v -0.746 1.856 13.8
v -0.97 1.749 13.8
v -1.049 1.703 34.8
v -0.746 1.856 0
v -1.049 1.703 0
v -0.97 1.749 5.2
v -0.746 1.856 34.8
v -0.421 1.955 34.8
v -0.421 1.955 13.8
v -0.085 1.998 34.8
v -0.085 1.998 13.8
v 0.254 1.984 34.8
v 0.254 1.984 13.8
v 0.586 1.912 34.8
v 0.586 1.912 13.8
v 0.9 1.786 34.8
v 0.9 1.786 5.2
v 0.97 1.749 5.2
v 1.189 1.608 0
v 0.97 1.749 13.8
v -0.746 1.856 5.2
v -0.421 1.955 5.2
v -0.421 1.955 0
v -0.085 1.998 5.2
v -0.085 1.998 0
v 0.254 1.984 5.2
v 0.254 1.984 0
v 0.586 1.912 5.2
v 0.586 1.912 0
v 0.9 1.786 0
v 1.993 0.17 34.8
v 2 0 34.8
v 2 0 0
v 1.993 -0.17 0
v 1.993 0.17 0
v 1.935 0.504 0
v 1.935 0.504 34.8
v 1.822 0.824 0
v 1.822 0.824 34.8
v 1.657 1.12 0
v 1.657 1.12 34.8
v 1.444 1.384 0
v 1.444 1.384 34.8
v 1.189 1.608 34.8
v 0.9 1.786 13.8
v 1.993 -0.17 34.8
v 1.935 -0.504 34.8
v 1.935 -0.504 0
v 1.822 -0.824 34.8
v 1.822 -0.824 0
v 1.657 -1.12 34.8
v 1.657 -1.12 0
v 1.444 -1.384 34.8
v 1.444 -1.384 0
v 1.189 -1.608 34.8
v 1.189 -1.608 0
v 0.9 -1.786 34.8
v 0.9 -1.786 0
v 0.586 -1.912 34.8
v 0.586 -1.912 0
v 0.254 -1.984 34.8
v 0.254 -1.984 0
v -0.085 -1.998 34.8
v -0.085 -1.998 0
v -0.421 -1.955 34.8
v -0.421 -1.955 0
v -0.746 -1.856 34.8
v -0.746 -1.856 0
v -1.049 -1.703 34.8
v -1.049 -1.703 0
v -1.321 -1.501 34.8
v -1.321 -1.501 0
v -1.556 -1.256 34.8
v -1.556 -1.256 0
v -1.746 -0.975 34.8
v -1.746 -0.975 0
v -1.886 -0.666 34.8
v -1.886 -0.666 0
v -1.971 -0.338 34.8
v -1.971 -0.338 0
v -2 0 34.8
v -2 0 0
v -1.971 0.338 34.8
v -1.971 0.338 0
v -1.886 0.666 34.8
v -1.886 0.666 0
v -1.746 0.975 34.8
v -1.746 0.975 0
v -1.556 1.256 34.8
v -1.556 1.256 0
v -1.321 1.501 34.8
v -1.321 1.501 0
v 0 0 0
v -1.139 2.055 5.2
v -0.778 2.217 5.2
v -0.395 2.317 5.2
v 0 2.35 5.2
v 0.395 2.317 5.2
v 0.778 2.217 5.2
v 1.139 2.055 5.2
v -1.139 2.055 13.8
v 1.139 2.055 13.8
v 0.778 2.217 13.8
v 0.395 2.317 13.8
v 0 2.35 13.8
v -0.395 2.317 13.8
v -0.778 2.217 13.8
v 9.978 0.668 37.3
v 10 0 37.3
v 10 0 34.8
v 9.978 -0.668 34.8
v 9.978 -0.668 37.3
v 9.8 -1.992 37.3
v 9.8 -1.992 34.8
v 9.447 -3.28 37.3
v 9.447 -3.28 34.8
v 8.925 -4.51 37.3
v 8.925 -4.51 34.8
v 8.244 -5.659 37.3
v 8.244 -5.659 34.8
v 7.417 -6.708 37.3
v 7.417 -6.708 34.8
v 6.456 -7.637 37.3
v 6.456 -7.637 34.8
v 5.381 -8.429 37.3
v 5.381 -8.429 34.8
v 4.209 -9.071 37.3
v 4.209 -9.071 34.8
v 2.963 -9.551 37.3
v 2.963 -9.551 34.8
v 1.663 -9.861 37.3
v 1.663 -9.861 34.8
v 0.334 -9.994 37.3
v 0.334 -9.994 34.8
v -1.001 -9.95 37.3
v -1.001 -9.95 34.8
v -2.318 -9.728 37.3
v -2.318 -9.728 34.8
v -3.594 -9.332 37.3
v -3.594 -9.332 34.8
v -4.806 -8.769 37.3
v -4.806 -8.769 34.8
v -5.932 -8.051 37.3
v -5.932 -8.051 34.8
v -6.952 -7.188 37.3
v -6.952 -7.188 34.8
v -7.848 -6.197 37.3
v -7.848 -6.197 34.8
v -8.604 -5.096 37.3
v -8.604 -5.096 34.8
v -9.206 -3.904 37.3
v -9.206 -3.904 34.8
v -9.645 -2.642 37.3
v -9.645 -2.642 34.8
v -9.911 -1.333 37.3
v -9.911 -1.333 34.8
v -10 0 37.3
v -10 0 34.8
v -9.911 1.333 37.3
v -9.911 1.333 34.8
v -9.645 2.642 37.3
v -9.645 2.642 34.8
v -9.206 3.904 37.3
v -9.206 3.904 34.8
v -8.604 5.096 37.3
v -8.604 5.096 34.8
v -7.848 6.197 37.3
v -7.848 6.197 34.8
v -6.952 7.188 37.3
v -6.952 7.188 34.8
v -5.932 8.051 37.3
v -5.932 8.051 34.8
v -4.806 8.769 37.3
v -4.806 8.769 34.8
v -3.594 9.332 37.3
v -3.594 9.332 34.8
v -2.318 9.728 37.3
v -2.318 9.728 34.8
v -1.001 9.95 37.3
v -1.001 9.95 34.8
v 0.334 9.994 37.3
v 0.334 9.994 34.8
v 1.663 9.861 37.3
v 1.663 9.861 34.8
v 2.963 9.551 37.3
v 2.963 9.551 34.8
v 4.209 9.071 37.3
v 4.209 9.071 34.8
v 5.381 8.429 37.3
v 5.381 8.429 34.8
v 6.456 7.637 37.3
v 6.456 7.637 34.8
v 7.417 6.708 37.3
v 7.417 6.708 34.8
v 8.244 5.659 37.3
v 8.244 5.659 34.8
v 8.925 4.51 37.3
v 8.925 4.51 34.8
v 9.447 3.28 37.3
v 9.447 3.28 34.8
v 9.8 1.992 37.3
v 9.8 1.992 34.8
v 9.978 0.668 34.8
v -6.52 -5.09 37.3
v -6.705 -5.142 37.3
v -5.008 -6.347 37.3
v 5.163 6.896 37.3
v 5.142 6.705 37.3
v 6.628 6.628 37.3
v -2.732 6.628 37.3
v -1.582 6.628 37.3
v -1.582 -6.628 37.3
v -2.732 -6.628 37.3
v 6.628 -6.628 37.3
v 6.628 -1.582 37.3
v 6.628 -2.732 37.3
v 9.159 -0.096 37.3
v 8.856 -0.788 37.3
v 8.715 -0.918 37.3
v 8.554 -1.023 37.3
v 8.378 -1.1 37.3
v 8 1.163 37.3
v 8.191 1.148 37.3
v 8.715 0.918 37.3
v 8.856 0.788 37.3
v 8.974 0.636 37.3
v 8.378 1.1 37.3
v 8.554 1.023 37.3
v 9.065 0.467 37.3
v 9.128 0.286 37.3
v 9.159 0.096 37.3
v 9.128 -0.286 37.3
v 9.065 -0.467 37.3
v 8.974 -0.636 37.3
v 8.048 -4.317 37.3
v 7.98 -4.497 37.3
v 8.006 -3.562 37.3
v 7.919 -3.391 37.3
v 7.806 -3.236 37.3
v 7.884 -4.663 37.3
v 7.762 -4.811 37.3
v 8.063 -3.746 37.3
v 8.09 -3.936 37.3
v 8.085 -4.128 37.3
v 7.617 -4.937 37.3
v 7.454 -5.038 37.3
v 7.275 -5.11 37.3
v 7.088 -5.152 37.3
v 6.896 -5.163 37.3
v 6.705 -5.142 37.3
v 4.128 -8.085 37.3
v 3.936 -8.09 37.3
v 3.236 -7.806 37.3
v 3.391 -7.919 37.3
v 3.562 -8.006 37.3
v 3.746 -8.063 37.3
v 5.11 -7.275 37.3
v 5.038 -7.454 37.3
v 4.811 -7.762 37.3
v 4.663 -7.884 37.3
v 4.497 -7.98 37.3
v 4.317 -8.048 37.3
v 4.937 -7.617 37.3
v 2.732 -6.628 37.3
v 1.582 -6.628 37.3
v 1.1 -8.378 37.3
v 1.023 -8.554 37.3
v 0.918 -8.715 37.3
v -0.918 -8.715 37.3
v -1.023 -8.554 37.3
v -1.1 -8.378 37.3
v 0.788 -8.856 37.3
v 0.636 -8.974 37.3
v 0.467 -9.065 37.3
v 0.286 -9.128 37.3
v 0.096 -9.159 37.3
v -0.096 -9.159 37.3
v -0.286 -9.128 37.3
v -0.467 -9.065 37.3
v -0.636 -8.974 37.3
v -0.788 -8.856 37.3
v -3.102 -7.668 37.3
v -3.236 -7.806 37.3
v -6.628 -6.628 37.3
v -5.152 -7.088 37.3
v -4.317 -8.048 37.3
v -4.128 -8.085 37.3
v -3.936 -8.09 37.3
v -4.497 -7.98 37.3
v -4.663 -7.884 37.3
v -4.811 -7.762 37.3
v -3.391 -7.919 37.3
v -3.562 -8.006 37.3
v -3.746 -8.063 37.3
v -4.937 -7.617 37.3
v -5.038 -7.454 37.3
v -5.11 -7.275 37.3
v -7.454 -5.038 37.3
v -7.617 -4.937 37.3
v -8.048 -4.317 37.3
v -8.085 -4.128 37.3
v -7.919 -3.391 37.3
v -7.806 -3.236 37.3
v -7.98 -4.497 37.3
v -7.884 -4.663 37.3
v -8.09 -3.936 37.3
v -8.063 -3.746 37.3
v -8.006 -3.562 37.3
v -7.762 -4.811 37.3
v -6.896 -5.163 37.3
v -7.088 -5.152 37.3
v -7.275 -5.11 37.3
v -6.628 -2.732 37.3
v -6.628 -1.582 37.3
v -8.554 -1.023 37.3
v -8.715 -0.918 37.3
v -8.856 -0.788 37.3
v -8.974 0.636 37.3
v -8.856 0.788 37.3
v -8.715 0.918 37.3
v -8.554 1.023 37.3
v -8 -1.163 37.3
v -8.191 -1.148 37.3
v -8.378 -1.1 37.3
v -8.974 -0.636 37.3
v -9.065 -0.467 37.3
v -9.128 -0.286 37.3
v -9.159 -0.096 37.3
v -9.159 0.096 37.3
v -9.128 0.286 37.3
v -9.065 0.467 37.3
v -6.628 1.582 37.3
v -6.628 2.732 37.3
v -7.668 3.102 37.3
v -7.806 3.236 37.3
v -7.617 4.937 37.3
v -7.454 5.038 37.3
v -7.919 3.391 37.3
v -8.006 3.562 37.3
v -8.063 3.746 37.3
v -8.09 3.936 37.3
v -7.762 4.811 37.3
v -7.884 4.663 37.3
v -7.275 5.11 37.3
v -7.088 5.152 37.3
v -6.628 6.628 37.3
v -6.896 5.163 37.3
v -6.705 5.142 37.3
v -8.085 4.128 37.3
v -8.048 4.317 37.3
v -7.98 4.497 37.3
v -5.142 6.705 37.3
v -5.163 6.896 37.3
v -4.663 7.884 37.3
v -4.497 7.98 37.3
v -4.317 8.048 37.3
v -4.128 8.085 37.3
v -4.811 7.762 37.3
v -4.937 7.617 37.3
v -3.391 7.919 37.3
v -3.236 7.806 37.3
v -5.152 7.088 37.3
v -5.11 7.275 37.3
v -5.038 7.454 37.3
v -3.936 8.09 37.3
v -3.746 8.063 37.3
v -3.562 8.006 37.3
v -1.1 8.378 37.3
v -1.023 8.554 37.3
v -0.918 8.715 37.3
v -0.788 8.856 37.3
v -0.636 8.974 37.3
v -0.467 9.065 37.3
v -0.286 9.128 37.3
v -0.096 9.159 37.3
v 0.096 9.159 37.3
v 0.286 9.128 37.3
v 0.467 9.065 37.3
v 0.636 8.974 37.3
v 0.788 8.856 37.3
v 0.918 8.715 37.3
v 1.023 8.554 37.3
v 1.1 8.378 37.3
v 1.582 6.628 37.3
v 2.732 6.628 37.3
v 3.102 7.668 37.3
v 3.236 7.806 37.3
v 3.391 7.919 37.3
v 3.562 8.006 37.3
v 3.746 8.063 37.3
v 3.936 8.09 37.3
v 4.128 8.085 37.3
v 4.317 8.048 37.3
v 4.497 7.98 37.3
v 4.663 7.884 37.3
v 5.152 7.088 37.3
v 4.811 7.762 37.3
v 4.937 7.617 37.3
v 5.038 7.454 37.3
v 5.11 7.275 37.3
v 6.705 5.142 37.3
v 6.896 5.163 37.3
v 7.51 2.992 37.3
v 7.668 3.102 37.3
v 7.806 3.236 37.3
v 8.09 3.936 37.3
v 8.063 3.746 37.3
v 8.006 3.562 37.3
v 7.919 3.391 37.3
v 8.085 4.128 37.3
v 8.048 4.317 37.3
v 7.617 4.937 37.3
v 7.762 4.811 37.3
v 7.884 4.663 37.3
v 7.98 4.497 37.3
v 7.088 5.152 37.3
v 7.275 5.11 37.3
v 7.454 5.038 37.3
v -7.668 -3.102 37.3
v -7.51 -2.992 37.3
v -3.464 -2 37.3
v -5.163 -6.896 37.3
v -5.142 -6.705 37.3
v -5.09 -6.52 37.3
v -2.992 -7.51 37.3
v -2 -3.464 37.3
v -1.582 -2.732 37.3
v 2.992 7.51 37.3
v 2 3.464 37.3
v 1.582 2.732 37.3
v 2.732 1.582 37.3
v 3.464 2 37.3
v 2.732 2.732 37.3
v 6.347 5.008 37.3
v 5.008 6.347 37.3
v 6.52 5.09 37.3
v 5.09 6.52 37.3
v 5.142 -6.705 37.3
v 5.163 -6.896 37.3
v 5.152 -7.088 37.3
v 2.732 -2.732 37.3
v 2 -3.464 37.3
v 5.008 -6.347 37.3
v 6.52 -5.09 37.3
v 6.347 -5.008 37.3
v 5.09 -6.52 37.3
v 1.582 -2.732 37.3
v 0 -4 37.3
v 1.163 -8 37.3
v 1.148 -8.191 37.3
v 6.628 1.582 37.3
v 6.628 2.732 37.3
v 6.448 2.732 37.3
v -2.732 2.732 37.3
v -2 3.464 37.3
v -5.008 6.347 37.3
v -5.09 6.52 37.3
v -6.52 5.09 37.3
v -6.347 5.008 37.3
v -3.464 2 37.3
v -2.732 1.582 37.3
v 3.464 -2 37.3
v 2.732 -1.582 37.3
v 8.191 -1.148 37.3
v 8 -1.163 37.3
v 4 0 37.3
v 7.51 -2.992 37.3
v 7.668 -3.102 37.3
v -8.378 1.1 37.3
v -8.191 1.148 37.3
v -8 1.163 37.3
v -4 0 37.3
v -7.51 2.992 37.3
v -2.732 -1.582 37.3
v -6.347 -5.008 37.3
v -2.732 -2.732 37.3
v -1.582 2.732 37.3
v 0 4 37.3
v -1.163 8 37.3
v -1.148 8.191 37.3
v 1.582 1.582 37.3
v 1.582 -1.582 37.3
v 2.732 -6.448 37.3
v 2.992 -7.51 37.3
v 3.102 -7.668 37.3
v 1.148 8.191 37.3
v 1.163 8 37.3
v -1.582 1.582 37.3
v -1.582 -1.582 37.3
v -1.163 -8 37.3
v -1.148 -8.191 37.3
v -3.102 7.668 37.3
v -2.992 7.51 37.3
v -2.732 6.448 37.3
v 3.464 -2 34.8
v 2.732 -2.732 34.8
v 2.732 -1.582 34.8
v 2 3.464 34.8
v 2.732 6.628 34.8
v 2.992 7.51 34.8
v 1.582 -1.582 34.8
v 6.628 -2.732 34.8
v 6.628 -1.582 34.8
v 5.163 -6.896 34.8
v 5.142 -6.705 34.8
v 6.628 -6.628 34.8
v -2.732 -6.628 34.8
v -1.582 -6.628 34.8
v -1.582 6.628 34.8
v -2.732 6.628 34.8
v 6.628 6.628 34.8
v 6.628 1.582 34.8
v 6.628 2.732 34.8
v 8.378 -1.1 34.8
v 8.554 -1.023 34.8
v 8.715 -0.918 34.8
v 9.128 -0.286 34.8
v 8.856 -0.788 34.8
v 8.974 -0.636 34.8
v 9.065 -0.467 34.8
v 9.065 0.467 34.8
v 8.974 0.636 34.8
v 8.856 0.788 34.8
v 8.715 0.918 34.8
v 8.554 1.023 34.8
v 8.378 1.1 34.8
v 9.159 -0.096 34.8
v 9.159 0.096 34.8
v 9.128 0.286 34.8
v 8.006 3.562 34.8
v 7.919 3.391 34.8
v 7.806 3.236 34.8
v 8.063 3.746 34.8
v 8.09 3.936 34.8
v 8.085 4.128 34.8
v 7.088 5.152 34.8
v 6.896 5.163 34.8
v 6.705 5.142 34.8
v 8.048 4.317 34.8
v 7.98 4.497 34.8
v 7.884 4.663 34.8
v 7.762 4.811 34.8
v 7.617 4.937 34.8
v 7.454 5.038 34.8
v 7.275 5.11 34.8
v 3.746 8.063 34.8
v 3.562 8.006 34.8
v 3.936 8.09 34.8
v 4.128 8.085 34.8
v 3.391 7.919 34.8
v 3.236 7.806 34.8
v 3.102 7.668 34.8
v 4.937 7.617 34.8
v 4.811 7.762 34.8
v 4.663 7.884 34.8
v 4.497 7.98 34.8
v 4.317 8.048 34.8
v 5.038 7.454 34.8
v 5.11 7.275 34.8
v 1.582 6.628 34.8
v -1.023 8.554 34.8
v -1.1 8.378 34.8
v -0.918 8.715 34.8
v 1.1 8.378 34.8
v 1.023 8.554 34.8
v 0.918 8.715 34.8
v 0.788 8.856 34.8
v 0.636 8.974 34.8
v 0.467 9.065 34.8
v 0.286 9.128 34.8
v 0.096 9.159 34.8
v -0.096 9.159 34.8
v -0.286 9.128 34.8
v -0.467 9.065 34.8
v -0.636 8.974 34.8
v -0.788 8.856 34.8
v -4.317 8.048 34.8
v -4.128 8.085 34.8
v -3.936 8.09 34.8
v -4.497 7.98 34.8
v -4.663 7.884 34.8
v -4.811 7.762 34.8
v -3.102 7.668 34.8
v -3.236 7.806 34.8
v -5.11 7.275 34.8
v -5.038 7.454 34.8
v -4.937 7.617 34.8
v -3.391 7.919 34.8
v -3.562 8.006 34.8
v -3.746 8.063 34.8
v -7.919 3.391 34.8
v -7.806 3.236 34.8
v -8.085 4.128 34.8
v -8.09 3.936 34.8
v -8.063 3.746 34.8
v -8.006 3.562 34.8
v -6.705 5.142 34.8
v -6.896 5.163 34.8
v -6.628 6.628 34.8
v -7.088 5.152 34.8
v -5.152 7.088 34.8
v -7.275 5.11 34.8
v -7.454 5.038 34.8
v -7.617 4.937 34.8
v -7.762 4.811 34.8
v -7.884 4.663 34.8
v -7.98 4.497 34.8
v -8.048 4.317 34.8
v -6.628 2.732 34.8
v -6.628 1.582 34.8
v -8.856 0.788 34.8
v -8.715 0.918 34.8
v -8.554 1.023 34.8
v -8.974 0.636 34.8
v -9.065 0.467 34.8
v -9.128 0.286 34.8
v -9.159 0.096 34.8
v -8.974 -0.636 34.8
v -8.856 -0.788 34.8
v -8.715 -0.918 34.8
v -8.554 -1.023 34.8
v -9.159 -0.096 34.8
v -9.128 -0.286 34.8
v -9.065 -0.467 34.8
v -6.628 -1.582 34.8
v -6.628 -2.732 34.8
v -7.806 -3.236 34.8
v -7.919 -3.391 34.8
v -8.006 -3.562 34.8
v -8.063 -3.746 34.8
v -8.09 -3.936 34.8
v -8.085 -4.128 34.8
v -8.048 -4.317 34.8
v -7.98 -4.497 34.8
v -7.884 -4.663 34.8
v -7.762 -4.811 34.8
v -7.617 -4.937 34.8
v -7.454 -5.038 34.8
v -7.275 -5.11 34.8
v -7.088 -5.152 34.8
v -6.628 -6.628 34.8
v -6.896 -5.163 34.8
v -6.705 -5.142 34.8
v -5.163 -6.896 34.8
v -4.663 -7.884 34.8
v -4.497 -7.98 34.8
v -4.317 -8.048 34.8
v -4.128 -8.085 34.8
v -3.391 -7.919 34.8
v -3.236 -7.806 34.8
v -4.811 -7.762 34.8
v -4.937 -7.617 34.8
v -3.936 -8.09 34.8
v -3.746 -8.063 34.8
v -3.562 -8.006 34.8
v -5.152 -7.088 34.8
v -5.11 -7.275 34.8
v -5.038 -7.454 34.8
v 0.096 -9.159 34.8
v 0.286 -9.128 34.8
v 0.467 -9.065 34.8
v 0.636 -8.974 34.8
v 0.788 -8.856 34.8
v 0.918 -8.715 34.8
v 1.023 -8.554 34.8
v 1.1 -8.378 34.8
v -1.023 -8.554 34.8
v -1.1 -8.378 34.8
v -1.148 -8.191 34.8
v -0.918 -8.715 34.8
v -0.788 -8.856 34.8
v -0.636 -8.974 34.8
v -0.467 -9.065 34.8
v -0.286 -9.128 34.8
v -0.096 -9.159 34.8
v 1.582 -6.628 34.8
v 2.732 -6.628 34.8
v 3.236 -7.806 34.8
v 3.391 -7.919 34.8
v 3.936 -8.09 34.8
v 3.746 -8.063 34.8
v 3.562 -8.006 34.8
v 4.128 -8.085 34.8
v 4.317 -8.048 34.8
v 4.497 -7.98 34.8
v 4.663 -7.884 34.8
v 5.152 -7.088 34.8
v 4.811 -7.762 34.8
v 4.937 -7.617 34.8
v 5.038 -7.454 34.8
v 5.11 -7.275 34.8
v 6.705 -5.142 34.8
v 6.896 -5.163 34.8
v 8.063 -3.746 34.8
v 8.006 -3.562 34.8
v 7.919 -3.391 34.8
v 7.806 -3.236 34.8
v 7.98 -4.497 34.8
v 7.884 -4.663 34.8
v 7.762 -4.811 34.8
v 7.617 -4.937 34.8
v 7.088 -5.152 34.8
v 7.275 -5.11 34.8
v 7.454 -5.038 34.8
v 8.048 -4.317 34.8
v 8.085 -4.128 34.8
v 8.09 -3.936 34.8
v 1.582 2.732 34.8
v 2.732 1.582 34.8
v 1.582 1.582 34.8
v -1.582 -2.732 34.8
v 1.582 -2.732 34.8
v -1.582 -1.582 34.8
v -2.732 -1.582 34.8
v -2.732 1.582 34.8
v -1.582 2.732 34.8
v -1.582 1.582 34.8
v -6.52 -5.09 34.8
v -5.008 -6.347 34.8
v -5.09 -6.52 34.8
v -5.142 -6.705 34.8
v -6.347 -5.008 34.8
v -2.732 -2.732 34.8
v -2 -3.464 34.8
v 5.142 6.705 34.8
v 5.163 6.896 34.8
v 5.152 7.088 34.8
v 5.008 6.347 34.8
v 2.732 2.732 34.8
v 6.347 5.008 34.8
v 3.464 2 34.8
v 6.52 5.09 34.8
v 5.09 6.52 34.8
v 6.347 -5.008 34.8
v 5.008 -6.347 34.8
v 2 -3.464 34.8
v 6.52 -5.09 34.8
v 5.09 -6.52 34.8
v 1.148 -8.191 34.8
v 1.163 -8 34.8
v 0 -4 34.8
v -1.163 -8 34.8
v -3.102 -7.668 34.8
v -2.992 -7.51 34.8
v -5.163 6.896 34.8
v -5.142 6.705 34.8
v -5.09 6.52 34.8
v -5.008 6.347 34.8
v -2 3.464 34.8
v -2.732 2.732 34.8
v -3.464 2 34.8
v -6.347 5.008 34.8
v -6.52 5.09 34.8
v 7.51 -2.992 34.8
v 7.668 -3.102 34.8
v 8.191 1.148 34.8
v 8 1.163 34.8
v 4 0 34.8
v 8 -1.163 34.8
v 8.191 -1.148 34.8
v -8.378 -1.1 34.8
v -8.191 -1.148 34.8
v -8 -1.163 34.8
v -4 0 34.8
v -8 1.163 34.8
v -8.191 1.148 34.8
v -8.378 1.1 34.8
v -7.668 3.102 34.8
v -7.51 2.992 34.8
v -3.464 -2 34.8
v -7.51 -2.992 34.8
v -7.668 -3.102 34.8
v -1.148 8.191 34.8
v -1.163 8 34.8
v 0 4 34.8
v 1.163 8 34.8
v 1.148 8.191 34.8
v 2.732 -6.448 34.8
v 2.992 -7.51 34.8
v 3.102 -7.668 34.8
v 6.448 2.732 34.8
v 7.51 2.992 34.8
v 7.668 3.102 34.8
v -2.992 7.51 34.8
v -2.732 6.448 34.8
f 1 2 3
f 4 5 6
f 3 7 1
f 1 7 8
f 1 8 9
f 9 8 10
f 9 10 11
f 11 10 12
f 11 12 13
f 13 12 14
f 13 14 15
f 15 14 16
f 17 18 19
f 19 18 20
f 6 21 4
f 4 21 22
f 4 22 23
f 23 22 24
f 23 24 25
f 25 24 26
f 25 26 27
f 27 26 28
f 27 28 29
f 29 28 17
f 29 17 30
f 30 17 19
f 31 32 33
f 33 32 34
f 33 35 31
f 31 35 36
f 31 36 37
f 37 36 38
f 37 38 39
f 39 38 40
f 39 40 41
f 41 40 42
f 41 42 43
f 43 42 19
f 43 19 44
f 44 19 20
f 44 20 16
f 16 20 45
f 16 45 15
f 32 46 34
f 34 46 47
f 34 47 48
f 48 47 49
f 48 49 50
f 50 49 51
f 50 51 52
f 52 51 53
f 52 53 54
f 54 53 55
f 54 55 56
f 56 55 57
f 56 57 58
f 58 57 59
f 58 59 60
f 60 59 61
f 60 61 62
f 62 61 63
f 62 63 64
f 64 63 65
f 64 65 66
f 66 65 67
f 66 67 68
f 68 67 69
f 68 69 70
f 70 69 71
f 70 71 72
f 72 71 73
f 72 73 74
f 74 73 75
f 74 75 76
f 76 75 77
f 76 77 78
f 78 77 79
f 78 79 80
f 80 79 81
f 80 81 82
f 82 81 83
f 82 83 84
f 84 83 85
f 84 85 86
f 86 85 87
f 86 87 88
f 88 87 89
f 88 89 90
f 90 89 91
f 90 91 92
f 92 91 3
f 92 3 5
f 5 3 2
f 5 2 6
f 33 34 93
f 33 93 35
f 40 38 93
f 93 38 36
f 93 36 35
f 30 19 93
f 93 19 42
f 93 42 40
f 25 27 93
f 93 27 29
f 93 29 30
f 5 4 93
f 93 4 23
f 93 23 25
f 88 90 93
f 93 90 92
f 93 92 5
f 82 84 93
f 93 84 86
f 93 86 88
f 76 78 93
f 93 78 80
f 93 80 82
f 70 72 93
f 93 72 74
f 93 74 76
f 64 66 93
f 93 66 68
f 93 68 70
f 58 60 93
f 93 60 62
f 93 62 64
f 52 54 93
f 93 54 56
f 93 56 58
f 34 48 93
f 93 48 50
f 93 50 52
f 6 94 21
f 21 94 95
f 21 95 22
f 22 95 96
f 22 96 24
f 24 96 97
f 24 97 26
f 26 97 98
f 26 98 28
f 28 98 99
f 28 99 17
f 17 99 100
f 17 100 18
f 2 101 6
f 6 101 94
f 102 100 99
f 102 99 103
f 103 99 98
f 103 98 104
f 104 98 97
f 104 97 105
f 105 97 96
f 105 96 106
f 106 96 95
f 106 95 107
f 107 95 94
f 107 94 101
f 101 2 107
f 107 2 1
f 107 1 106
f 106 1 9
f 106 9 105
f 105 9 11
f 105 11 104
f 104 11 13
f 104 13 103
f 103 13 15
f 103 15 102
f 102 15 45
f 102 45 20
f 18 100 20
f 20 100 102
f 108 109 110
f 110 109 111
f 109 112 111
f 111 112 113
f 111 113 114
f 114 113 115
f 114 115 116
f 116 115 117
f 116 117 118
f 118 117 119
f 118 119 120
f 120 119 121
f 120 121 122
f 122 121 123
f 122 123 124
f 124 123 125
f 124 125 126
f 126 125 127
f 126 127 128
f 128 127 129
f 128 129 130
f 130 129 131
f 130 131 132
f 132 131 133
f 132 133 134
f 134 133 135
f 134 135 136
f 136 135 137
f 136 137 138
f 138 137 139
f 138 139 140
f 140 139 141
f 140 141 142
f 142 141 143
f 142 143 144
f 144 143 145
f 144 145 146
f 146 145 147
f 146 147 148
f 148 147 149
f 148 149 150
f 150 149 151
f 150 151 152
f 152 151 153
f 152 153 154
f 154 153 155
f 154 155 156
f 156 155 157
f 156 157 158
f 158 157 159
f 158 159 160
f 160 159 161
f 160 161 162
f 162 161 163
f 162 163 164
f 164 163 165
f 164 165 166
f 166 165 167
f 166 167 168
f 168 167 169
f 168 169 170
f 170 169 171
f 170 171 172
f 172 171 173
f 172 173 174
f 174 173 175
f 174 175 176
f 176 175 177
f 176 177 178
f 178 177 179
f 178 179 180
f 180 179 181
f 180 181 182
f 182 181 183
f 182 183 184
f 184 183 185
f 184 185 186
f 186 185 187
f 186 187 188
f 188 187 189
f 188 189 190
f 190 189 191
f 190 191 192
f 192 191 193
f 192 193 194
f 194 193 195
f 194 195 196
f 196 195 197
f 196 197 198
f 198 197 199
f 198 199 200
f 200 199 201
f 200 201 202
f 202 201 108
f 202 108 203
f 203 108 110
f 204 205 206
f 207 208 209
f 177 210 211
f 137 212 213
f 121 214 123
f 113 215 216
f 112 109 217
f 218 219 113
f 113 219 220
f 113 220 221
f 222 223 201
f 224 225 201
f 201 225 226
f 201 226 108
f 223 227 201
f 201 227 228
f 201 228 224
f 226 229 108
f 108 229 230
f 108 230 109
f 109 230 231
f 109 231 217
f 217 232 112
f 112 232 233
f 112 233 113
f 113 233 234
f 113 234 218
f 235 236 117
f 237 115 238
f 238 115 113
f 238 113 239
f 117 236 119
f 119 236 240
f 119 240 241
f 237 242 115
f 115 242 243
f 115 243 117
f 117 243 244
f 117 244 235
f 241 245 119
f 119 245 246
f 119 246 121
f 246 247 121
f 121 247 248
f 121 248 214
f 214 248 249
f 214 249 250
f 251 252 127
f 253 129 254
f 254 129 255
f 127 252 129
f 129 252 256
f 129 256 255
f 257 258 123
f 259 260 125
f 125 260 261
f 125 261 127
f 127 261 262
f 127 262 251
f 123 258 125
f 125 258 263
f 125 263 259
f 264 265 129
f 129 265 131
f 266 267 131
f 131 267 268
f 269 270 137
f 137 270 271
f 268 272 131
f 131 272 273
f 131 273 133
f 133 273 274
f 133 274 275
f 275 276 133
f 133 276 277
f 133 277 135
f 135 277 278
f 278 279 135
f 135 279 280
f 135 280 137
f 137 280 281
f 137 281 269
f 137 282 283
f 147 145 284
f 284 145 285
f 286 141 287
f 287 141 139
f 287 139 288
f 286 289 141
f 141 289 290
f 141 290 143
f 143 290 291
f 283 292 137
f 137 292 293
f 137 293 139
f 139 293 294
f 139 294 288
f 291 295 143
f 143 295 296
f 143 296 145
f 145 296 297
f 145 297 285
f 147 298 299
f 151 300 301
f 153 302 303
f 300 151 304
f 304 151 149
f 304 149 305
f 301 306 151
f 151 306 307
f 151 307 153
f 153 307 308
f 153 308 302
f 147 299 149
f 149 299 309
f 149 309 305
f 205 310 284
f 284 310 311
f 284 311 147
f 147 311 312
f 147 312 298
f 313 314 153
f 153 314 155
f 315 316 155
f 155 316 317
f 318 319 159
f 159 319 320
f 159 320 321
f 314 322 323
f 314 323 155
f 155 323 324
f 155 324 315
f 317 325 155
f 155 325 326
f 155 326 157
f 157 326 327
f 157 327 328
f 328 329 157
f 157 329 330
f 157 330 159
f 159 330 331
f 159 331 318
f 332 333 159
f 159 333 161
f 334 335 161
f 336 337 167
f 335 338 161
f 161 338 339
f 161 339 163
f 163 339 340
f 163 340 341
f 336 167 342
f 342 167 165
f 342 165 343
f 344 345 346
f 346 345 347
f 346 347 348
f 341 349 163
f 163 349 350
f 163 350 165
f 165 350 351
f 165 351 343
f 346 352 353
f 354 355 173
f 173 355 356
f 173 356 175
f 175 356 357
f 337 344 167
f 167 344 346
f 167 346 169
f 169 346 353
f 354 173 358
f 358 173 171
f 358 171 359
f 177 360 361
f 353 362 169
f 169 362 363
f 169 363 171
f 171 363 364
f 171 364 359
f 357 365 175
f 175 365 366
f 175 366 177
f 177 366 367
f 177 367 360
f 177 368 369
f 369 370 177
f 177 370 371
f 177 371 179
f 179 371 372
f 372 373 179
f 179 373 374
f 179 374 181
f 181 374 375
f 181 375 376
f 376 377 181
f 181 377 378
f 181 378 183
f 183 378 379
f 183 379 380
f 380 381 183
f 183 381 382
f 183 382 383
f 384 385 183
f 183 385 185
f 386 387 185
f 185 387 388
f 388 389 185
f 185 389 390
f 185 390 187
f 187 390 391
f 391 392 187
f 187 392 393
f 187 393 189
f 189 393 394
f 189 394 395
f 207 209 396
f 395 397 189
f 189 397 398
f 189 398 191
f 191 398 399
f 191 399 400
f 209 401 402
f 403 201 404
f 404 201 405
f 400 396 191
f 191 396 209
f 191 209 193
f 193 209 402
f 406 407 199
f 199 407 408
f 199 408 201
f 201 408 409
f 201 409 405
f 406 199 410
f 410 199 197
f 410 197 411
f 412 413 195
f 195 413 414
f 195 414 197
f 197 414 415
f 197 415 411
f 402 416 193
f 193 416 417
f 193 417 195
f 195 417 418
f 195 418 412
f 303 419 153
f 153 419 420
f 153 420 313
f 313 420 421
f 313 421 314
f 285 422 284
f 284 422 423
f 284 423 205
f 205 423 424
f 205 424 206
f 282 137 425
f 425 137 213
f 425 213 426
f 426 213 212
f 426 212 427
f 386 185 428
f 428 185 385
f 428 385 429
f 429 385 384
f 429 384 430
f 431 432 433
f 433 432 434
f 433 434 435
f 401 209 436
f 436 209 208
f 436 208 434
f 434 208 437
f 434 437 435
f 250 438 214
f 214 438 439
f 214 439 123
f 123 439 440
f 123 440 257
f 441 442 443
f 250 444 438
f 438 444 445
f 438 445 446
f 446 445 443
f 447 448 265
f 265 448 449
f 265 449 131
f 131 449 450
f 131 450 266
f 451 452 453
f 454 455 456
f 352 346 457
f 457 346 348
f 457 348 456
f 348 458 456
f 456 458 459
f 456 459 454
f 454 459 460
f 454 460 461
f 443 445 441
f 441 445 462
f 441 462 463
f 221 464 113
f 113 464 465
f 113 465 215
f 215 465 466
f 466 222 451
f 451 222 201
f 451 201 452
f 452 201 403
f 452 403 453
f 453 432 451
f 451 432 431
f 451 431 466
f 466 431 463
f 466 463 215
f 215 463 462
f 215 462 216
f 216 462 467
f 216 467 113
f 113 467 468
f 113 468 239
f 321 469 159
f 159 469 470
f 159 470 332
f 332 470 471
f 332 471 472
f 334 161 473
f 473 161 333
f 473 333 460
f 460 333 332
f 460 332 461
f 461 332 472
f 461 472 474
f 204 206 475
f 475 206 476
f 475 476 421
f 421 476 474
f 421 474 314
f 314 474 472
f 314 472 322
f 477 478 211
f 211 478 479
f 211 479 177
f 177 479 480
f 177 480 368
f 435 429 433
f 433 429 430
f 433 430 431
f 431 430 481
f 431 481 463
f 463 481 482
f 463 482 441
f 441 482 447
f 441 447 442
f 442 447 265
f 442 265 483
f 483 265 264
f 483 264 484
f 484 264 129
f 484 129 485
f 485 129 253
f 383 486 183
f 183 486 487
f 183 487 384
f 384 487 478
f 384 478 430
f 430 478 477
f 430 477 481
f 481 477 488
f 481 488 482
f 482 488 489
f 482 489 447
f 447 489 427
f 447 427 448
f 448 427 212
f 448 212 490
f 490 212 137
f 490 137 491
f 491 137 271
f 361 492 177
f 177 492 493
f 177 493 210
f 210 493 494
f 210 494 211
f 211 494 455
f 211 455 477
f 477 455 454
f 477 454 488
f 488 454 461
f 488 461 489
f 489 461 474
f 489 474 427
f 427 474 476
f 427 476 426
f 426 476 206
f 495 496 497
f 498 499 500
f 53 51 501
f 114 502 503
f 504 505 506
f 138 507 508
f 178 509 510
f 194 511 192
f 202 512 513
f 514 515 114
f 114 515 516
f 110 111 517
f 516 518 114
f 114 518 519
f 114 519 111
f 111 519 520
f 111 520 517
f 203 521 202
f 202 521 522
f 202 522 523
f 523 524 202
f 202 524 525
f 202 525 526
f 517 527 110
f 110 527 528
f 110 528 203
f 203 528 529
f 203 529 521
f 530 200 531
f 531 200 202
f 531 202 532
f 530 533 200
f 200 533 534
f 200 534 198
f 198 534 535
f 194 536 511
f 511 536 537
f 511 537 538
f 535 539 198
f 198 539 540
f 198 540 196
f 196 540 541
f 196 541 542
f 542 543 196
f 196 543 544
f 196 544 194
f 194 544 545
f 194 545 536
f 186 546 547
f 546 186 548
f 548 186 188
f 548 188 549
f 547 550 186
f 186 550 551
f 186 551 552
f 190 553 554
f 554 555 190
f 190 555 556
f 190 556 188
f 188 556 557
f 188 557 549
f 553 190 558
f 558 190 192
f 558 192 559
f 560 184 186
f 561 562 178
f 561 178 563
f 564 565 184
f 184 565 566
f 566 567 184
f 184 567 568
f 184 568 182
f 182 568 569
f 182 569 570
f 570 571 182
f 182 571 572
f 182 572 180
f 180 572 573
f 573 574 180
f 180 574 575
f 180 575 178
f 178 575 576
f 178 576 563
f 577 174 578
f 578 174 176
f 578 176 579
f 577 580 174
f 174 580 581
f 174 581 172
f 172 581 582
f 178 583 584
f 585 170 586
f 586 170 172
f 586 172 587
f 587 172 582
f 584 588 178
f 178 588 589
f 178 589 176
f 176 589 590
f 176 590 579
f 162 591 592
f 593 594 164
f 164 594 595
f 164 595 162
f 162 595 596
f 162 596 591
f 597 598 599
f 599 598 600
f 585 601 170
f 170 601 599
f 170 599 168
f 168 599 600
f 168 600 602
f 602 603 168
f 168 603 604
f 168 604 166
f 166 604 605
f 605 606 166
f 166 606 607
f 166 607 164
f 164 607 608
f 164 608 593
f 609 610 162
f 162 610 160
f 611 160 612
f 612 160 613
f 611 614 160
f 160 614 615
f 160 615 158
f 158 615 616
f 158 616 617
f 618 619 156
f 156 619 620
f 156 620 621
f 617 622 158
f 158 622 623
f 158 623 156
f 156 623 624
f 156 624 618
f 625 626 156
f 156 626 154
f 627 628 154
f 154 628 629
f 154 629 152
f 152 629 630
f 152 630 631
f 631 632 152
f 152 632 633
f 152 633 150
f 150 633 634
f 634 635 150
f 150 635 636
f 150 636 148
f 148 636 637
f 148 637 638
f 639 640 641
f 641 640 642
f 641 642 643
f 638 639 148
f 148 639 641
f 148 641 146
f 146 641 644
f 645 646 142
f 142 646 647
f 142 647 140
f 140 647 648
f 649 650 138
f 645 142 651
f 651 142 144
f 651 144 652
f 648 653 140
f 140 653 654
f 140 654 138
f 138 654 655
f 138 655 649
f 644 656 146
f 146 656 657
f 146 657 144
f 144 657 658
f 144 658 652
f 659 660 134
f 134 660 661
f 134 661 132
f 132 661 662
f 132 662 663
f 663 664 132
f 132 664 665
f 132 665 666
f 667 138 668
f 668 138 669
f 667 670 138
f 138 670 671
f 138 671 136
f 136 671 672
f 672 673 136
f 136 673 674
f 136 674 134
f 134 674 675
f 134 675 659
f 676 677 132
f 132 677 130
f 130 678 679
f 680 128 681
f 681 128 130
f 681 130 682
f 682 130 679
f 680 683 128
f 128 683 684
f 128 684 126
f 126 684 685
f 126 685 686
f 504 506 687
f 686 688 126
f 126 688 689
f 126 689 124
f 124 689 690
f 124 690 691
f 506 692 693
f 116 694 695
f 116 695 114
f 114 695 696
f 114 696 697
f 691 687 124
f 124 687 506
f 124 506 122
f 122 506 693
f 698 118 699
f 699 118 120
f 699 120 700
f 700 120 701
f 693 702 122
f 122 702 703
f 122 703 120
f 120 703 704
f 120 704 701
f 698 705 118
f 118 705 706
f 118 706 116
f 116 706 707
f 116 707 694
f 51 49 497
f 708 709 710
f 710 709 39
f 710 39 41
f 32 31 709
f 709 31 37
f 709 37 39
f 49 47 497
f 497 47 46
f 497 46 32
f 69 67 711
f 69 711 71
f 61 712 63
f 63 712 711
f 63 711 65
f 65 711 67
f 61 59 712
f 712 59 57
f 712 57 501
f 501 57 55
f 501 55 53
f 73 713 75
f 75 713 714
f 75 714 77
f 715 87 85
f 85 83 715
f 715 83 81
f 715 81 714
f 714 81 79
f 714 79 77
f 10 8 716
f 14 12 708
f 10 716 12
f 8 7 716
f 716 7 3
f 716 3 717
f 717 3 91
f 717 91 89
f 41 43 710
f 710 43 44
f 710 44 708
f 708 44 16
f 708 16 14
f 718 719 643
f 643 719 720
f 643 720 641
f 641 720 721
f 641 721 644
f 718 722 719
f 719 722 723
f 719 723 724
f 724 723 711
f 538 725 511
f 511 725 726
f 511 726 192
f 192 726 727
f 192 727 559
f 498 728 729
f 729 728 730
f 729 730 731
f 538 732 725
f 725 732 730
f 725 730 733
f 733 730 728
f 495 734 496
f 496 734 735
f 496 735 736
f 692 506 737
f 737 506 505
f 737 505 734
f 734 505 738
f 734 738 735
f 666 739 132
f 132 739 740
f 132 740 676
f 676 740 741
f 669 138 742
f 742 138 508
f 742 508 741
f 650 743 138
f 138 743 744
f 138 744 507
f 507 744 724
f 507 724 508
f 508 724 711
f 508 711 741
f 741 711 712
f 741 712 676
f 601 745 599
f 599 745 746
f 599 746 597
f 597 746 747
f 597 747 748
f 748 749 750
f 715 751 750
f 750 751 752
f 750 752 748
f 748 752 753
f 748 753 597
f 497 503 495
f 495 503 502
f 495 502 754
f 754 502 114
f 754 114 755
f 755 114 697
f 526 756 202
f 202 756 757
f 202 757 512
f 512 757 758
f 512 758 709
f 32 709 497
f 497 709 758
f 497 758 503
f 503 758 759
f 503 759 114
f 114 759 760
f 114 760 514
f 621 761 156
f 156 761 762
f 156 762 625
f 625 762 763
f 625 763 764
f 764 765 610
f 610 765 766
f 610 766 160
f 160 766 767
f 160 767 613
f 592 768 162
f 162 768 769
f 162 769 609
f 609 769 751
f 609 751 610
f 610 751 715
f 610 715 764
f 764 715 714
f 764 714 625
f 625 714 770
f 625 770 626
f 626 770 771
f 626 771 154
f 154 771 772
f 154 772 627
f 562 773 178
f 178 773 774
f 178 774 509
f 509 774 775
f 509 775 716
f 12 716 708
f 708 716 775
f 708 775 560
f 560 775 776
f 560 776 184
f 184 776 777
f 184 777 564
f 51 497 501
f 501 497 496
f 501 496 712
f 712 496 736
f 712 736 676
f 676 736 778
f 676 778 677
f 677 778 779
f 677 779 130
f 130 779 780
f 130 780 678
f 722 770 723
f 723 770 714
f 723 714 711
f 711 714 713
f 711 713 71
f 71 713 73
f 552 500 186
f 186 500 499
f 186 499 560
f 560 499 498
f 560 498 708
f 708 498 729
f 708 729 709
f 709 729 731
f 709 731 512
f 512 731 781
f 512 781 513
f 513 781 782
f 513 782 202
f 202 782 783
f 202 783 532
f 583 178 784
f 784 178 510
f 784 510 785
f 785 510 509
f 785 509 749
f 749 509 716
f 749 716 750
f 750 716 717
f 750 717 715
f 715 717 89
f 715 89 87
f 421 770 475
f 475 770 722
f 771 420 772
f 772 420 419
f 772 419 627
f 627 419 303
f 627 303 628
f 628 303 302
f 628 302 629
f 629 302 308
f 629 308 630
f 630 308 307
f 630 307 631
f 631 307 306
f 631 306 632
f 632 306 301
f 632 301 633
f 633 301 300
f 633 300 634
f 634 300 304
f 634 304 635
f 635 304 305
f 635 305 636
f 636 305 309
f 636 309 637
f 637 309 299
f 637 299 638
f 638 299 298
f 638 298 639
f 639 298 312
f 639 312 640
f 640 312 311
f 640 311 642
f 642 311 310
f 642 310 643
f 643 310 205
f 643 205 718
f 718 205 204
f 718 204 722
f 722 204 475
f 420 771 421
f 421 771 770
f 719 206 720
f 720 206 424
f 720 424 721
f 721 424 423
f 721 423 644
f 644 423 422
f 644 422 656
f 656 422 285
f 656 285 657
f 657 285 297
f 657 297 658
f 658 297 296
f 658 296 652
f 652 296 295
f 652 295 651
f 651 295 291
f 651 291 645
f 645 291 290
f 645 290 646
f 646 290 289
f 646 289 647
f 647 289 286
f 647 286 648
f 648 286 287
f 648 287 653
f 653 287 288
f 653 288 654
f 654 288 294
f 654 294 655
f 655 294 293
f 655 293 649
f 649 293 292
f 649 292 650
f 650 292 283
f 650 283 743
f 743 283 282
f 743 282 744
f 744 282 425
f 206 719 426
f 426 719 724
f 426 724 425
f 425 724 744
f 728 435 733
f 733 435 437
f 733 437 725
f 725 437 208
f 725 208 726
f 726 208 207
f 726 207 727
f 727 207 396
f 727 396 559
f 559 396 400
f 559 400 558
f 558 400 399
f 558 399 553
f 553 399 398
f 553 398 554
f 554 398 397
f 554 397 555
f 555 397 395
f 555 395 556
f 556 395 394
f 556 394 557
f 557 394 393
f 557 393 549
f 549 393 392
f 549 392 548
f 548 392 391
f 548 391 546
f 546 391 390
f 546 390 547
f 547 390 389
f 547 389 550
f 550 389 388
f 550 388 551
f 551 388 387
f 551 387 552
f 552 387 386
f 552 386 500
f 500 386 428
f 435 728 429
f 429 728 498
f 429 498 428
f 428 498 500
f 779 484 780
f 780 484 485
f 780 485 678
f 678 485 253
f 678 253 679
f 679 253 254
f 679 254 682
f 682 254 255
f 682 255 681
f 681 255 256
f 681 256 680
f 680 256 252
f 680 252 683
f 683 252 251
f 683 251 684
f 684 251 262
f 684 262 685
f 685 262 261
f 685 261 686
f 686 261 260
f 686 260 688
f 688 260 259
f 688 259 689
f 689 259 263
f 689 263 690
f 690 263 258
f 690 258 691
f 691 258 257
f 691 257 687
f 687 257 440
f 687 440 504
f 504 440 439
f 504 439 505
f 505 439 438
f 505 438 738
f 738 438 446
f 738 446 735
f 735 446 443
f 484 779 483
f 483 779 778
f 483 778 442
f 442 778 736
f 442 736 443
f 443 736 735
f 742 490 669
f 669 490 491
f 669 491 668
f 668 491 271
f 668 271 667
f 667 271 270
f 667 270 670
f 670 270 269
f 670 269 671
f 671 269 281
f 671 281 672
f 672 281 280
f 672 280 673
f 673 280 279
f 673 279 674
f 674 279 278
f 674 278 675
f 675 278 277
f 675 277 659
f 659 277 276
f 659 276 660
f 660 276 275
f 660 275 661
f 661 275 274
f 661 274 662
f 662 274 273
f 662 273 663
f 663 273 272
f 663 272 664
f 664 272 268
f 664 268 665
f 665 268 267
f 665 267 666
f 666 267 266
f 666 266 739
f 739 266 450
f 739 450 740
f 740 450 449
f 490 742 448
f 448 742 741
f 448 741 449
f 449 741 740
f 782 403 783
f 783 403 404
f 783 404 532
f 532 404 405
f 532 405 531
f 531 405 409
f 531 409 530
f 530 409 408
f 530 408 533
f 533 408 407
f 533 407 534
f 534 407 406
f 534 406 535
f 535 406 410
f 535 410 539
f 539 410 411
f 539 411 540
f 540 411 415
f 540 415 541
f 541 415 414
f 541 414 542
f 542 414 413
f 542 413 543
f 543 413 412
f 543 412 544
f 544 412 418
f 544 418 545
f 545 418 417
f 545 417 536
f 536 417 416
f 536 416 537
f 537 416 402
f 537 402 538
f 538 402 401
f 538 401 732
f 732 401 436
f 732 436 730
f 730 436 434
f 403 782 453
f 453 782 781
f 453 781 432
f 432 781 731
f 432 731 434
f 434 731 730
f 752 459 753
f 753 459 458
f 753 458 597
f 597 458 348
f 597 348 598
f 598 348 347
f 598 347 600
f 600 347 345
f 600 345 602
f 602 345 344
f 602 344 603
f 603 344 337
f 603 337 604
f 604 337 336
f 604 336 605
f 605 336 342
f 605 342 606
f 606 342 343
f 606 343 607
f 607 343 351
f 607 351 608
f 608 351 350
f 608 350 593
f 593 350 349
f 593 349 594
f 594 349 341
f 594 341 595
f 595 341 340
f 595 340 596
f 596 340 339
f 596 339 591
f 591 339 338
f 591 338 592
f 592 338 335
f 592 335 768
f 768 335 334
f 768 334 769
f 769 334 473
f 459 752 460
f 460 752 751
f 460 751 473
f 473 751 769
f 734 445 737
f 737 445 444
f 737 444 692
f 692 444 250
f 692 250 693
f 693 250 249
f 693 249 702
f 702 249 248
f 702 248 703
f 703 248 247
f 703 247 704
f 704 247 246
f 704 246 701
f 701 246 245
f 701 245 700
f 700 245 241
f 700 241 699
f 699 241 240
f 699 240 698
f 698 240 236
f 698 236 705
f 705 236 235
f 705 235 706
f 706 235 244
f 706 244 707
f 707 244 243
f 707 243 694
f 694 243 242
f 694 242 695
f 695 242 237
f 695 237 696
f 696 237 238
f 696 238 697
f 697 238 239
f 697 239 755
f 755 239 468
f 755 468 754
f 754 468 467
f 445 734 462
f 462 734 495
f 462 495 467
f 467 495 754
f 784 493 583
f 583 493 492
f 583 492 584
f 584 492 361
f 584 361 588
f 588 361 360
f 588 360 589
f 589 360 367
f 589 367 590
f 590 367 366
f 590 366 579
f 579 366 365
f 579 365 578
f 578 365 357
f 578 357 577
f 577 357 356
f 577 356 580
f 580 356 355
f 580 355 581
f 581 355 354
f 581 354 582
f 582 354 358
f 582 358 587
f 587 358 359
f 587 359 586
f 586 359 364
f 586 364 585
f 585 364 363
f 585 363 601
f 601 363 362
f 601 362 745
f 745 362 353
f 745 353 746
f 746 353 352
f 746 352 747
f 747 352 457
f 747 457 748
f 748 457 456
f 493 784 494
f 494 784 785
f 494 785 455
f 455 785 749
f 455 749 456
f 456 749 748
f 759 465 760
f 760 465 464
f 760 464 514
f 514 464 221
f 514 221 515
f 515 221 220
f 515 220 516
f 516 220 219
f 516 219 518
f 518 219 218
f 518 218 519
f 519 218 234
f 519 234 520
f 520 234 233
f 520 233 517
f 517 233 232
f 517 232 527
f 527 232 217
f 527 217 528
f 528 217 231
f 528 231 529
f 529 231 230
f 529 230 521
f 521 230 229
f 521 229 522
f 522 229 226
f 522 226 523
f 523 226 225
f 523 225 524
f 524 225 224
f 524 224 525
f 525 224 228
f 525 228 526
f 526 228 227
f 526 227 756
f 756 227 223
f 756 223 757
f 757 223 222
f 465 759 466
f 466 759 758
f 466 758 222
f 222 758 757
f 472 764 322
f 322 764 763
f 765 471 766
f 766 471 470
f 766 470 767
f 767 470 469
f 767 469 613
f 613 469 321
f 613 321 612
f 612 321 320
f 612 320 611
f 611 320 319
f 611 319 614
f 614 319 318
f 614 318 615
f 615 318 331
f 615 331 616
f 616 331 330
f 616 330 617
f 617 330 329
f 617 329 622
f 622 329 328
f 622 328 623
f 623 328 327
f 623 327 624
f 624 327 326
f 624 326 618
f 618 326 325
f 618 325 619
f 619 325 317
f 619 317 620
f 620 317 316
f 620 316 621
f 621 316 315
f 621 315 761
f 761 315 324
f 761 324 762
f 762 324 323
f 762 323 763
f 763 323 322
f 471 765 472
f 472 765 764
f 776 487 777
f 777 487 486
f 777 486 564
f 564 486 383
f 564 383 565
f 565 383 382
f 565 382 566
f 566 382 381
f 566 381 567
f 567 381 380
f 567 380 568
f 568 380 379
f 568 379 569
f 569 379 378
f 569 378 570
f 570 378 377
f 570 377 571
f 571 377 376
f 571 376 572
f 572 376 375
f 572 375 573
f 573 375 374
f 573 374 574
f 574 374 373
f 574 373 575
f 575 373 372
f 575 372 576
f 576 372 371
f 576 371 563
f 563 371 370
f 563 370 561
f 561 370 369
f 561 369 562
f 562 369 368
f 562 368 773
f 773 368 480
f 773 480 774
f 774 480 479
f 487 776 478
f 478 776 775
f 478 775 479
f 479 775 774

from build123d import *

# Parameters (mm, degrees)
SKETCH3_R           = 2
BOSS_EXTRUDE1_DEPTH = 5.2
SKETCH4_R           = 2
BOSS_EXTRUDE2_DEPTH = 8.6
SKETCH5_R           = 2
BOSS_EXTRUDE3_DEPTH = 15
SKETCH7_R           = 2
BOSS_EXTRUDE4_DEPTH = 6
SKETCH8_R           = 10
BOSS_EXTRUDE5_DEPTH = 2.5
CUT_EXTRUDE1_DEPTH  = 12


with BuildPart() as part:
    # Sketch3 → Boss-Extrude1 (new body)
    with BuildSketch(Plane.XY):
        Circle(SKETCH3_R)
    extrude(amount=BOSS_EXTRUDE1_DEPTH)

    # Sketch4 → Boss-Extrude2 (add)
    with BuildSketch(Plane.XY.offset(5.2)):
        with Locations(Location((0, 0, 0), (0, 0, 119))):
            Circle(SKETCH4_R)
        with BuildLine():
            Line((0, 0), (1.139302608, 2.055356312))
            ThreePointArc((1.139302608, 2.055356312), (0, 2.35), (-1.139302608, 2.055356312))
            Line((-1.139302608, 2.055356312), (0, 0))
        make_face()
        with BuildLine():
            Line((0.96961924, 1.749239414), (0, 0))
            Line((0, 0), (-0.96961924, 1.749239414))
            ThreePointArc((-0.96961924, 1.749239414), (-1.015076726, -1.723258321), (2, 0))
            ThreePointArc((2, 0), (1.723258321, 1.015076726), (0.96961924, 1.749239414))
        make_face()
    extrude(amount=BOSS_EXTRUDE2_DEPTH)

    # Sketch5 → Boss-Extrude3 (add)
    with BuildSketch(Plane.XY.offset(13.8)):
        Circle(SKETCH5_R)
    extrude(amount=BOSS_EXTRUDE3_DEPTH)

    # Sketch7 → Boss-Extrude4 (add)
    with BuildSketch(Plane.XY.offset(28.8)):
        Circle(SKETCH7_R)
    extrude(amount=BOSS_EXTRUDE4_DEPTH)

    # Sketch8 → Boss-Extrude5 (add)
    with BuildSketch(Plane.XY.offset(34.8)):
        Circle(SKETCH8_R)
    extrude(amount=BOSS_EXTRUDE5_DEPTH)

    # Sketch9 → Cut-Extrude1 (cut)
    with BuildSketch(Plane.XY.offset(37.3)):
        with BuildLine():
            Line((7.509902395, -2.992467491), (3.464101615, -2))
            Line((3.464101615, -2), (6.346504065, -5.007532509))
            ThreePointArc((6.346504065, -5.007532509), (7.935735739, -4.581699165), (7.509902395, -2.992467491))
        make_face()
        with BuildLine():
            Line((-6.346504065, 5.007532509), (-3.464101615, 2))
            Line((-3.464101615, 2), (-7.509902395, 2.992467491))
            ThreePointArc((-7.509902395, 2.992467491), (-7.935735739, 4.581699165), (-6.346504065, 5.007532509))
        make_face()
        with BuildLine():
            Line((-7.509902395, -2.992467491), (-3.464101615, -2))
            Line((-3.464101615, -2), (-6.346504065, -5.007532509))
            ThreePointArc((-6.346504065, -5.007532509), (-7.935735739, -4.581699165), (-7.509902395, -2.992467491))
        make_face()
        with BuildLine():
            Line((6.346504065, 5.007532509), (3.464101615, 2))
            Line((3.464101615, 2), (7.509902395, 2.992467491))
            ThreePointArc((7.509902395, 2.992467491), (7.935735739, 4.581699165), (6.346504065, 5.007532509))
        make_face()
        with BuildLine():
            Line((-1.16339833, -8), (0, -4))
            Line((0, -4), (1.16339833, -8))
            ThreePointArc((1.16339833, -8), (0, -9.16339833), (-1.16339833, -8))
        make_face()
        with BuildLine():
            Line((1.16339833, 8), (0, 4))
            Line((0, 4), (-1.16339833, 8))
            ThreePointArc((-1.16339833, 8), (0, 9.16339833), (1.16339833, 8))
        make_face()
        with BuildLine():
            Line((-8, 1.16339833), (-4, 0))
            Line((-4, 0), (-8, -1.16339833))
            ThreePointArc((-8, -1.16339833), (-9.16339833, 0), (-8, 1.16339833))
        make_face()
        with BuildLine():
            Line((8, -1.16339833), (4, 0))
            Line((4, 0), (8, 1.16339833))
            ThreePointArc((8, 1.16339833), (9.16339833, 0), (8, -1.16339833))
        make_face()
        with BuildLine():
            Line((-2.992467491, 7.509902395), (-2, 3.464101615))
            Line((-2, 3.464101615), (-5.007532509, 6.346504065))
            ThreePointArc((-5.007532509, 6.346504065), (-4.581699165, 7.935735739), (-2.992467491, 7.509902395))
        make_face()
        with BuildLine():
            Line((5.007532509, -6.346504065), (2, -3.464101615))
            Line((2, -3.464101615), (2.992467491, -7.509902395))
            ThreePointArc((2.992467491, -7.509902395), (4.581699165, -7.935735739), (5.007532509, -6.346504065))
        make_face()
        with BuildLine():
            Line((2.992467491, 7.509902395), (2, 3.464101615))
            Line((2, 3.464101615), (5.007532509, 6.346504065))
            ThreePointArc((5.007532509, 6.346504065), (4.581699165, 7.935735739), (2.992467491, 7.509902395))
        make_face()
        with BuildLine():
            Line((-5.007532509, -6.346504065), (-2, -3.464101615))
            Line((-2, -3.464101615), (-2.992467491, -7.509902395))
            ThreePointArc((-2.992467491, -7.509902395), (-4.581699165, -7.935735739), (-5.007532509, -6.346504065))
        make_face()
    extrude(amount=-CUT_EXTRUDE1_DEPTH, mode=Mode.SUBTRACT)


solid = part.part
